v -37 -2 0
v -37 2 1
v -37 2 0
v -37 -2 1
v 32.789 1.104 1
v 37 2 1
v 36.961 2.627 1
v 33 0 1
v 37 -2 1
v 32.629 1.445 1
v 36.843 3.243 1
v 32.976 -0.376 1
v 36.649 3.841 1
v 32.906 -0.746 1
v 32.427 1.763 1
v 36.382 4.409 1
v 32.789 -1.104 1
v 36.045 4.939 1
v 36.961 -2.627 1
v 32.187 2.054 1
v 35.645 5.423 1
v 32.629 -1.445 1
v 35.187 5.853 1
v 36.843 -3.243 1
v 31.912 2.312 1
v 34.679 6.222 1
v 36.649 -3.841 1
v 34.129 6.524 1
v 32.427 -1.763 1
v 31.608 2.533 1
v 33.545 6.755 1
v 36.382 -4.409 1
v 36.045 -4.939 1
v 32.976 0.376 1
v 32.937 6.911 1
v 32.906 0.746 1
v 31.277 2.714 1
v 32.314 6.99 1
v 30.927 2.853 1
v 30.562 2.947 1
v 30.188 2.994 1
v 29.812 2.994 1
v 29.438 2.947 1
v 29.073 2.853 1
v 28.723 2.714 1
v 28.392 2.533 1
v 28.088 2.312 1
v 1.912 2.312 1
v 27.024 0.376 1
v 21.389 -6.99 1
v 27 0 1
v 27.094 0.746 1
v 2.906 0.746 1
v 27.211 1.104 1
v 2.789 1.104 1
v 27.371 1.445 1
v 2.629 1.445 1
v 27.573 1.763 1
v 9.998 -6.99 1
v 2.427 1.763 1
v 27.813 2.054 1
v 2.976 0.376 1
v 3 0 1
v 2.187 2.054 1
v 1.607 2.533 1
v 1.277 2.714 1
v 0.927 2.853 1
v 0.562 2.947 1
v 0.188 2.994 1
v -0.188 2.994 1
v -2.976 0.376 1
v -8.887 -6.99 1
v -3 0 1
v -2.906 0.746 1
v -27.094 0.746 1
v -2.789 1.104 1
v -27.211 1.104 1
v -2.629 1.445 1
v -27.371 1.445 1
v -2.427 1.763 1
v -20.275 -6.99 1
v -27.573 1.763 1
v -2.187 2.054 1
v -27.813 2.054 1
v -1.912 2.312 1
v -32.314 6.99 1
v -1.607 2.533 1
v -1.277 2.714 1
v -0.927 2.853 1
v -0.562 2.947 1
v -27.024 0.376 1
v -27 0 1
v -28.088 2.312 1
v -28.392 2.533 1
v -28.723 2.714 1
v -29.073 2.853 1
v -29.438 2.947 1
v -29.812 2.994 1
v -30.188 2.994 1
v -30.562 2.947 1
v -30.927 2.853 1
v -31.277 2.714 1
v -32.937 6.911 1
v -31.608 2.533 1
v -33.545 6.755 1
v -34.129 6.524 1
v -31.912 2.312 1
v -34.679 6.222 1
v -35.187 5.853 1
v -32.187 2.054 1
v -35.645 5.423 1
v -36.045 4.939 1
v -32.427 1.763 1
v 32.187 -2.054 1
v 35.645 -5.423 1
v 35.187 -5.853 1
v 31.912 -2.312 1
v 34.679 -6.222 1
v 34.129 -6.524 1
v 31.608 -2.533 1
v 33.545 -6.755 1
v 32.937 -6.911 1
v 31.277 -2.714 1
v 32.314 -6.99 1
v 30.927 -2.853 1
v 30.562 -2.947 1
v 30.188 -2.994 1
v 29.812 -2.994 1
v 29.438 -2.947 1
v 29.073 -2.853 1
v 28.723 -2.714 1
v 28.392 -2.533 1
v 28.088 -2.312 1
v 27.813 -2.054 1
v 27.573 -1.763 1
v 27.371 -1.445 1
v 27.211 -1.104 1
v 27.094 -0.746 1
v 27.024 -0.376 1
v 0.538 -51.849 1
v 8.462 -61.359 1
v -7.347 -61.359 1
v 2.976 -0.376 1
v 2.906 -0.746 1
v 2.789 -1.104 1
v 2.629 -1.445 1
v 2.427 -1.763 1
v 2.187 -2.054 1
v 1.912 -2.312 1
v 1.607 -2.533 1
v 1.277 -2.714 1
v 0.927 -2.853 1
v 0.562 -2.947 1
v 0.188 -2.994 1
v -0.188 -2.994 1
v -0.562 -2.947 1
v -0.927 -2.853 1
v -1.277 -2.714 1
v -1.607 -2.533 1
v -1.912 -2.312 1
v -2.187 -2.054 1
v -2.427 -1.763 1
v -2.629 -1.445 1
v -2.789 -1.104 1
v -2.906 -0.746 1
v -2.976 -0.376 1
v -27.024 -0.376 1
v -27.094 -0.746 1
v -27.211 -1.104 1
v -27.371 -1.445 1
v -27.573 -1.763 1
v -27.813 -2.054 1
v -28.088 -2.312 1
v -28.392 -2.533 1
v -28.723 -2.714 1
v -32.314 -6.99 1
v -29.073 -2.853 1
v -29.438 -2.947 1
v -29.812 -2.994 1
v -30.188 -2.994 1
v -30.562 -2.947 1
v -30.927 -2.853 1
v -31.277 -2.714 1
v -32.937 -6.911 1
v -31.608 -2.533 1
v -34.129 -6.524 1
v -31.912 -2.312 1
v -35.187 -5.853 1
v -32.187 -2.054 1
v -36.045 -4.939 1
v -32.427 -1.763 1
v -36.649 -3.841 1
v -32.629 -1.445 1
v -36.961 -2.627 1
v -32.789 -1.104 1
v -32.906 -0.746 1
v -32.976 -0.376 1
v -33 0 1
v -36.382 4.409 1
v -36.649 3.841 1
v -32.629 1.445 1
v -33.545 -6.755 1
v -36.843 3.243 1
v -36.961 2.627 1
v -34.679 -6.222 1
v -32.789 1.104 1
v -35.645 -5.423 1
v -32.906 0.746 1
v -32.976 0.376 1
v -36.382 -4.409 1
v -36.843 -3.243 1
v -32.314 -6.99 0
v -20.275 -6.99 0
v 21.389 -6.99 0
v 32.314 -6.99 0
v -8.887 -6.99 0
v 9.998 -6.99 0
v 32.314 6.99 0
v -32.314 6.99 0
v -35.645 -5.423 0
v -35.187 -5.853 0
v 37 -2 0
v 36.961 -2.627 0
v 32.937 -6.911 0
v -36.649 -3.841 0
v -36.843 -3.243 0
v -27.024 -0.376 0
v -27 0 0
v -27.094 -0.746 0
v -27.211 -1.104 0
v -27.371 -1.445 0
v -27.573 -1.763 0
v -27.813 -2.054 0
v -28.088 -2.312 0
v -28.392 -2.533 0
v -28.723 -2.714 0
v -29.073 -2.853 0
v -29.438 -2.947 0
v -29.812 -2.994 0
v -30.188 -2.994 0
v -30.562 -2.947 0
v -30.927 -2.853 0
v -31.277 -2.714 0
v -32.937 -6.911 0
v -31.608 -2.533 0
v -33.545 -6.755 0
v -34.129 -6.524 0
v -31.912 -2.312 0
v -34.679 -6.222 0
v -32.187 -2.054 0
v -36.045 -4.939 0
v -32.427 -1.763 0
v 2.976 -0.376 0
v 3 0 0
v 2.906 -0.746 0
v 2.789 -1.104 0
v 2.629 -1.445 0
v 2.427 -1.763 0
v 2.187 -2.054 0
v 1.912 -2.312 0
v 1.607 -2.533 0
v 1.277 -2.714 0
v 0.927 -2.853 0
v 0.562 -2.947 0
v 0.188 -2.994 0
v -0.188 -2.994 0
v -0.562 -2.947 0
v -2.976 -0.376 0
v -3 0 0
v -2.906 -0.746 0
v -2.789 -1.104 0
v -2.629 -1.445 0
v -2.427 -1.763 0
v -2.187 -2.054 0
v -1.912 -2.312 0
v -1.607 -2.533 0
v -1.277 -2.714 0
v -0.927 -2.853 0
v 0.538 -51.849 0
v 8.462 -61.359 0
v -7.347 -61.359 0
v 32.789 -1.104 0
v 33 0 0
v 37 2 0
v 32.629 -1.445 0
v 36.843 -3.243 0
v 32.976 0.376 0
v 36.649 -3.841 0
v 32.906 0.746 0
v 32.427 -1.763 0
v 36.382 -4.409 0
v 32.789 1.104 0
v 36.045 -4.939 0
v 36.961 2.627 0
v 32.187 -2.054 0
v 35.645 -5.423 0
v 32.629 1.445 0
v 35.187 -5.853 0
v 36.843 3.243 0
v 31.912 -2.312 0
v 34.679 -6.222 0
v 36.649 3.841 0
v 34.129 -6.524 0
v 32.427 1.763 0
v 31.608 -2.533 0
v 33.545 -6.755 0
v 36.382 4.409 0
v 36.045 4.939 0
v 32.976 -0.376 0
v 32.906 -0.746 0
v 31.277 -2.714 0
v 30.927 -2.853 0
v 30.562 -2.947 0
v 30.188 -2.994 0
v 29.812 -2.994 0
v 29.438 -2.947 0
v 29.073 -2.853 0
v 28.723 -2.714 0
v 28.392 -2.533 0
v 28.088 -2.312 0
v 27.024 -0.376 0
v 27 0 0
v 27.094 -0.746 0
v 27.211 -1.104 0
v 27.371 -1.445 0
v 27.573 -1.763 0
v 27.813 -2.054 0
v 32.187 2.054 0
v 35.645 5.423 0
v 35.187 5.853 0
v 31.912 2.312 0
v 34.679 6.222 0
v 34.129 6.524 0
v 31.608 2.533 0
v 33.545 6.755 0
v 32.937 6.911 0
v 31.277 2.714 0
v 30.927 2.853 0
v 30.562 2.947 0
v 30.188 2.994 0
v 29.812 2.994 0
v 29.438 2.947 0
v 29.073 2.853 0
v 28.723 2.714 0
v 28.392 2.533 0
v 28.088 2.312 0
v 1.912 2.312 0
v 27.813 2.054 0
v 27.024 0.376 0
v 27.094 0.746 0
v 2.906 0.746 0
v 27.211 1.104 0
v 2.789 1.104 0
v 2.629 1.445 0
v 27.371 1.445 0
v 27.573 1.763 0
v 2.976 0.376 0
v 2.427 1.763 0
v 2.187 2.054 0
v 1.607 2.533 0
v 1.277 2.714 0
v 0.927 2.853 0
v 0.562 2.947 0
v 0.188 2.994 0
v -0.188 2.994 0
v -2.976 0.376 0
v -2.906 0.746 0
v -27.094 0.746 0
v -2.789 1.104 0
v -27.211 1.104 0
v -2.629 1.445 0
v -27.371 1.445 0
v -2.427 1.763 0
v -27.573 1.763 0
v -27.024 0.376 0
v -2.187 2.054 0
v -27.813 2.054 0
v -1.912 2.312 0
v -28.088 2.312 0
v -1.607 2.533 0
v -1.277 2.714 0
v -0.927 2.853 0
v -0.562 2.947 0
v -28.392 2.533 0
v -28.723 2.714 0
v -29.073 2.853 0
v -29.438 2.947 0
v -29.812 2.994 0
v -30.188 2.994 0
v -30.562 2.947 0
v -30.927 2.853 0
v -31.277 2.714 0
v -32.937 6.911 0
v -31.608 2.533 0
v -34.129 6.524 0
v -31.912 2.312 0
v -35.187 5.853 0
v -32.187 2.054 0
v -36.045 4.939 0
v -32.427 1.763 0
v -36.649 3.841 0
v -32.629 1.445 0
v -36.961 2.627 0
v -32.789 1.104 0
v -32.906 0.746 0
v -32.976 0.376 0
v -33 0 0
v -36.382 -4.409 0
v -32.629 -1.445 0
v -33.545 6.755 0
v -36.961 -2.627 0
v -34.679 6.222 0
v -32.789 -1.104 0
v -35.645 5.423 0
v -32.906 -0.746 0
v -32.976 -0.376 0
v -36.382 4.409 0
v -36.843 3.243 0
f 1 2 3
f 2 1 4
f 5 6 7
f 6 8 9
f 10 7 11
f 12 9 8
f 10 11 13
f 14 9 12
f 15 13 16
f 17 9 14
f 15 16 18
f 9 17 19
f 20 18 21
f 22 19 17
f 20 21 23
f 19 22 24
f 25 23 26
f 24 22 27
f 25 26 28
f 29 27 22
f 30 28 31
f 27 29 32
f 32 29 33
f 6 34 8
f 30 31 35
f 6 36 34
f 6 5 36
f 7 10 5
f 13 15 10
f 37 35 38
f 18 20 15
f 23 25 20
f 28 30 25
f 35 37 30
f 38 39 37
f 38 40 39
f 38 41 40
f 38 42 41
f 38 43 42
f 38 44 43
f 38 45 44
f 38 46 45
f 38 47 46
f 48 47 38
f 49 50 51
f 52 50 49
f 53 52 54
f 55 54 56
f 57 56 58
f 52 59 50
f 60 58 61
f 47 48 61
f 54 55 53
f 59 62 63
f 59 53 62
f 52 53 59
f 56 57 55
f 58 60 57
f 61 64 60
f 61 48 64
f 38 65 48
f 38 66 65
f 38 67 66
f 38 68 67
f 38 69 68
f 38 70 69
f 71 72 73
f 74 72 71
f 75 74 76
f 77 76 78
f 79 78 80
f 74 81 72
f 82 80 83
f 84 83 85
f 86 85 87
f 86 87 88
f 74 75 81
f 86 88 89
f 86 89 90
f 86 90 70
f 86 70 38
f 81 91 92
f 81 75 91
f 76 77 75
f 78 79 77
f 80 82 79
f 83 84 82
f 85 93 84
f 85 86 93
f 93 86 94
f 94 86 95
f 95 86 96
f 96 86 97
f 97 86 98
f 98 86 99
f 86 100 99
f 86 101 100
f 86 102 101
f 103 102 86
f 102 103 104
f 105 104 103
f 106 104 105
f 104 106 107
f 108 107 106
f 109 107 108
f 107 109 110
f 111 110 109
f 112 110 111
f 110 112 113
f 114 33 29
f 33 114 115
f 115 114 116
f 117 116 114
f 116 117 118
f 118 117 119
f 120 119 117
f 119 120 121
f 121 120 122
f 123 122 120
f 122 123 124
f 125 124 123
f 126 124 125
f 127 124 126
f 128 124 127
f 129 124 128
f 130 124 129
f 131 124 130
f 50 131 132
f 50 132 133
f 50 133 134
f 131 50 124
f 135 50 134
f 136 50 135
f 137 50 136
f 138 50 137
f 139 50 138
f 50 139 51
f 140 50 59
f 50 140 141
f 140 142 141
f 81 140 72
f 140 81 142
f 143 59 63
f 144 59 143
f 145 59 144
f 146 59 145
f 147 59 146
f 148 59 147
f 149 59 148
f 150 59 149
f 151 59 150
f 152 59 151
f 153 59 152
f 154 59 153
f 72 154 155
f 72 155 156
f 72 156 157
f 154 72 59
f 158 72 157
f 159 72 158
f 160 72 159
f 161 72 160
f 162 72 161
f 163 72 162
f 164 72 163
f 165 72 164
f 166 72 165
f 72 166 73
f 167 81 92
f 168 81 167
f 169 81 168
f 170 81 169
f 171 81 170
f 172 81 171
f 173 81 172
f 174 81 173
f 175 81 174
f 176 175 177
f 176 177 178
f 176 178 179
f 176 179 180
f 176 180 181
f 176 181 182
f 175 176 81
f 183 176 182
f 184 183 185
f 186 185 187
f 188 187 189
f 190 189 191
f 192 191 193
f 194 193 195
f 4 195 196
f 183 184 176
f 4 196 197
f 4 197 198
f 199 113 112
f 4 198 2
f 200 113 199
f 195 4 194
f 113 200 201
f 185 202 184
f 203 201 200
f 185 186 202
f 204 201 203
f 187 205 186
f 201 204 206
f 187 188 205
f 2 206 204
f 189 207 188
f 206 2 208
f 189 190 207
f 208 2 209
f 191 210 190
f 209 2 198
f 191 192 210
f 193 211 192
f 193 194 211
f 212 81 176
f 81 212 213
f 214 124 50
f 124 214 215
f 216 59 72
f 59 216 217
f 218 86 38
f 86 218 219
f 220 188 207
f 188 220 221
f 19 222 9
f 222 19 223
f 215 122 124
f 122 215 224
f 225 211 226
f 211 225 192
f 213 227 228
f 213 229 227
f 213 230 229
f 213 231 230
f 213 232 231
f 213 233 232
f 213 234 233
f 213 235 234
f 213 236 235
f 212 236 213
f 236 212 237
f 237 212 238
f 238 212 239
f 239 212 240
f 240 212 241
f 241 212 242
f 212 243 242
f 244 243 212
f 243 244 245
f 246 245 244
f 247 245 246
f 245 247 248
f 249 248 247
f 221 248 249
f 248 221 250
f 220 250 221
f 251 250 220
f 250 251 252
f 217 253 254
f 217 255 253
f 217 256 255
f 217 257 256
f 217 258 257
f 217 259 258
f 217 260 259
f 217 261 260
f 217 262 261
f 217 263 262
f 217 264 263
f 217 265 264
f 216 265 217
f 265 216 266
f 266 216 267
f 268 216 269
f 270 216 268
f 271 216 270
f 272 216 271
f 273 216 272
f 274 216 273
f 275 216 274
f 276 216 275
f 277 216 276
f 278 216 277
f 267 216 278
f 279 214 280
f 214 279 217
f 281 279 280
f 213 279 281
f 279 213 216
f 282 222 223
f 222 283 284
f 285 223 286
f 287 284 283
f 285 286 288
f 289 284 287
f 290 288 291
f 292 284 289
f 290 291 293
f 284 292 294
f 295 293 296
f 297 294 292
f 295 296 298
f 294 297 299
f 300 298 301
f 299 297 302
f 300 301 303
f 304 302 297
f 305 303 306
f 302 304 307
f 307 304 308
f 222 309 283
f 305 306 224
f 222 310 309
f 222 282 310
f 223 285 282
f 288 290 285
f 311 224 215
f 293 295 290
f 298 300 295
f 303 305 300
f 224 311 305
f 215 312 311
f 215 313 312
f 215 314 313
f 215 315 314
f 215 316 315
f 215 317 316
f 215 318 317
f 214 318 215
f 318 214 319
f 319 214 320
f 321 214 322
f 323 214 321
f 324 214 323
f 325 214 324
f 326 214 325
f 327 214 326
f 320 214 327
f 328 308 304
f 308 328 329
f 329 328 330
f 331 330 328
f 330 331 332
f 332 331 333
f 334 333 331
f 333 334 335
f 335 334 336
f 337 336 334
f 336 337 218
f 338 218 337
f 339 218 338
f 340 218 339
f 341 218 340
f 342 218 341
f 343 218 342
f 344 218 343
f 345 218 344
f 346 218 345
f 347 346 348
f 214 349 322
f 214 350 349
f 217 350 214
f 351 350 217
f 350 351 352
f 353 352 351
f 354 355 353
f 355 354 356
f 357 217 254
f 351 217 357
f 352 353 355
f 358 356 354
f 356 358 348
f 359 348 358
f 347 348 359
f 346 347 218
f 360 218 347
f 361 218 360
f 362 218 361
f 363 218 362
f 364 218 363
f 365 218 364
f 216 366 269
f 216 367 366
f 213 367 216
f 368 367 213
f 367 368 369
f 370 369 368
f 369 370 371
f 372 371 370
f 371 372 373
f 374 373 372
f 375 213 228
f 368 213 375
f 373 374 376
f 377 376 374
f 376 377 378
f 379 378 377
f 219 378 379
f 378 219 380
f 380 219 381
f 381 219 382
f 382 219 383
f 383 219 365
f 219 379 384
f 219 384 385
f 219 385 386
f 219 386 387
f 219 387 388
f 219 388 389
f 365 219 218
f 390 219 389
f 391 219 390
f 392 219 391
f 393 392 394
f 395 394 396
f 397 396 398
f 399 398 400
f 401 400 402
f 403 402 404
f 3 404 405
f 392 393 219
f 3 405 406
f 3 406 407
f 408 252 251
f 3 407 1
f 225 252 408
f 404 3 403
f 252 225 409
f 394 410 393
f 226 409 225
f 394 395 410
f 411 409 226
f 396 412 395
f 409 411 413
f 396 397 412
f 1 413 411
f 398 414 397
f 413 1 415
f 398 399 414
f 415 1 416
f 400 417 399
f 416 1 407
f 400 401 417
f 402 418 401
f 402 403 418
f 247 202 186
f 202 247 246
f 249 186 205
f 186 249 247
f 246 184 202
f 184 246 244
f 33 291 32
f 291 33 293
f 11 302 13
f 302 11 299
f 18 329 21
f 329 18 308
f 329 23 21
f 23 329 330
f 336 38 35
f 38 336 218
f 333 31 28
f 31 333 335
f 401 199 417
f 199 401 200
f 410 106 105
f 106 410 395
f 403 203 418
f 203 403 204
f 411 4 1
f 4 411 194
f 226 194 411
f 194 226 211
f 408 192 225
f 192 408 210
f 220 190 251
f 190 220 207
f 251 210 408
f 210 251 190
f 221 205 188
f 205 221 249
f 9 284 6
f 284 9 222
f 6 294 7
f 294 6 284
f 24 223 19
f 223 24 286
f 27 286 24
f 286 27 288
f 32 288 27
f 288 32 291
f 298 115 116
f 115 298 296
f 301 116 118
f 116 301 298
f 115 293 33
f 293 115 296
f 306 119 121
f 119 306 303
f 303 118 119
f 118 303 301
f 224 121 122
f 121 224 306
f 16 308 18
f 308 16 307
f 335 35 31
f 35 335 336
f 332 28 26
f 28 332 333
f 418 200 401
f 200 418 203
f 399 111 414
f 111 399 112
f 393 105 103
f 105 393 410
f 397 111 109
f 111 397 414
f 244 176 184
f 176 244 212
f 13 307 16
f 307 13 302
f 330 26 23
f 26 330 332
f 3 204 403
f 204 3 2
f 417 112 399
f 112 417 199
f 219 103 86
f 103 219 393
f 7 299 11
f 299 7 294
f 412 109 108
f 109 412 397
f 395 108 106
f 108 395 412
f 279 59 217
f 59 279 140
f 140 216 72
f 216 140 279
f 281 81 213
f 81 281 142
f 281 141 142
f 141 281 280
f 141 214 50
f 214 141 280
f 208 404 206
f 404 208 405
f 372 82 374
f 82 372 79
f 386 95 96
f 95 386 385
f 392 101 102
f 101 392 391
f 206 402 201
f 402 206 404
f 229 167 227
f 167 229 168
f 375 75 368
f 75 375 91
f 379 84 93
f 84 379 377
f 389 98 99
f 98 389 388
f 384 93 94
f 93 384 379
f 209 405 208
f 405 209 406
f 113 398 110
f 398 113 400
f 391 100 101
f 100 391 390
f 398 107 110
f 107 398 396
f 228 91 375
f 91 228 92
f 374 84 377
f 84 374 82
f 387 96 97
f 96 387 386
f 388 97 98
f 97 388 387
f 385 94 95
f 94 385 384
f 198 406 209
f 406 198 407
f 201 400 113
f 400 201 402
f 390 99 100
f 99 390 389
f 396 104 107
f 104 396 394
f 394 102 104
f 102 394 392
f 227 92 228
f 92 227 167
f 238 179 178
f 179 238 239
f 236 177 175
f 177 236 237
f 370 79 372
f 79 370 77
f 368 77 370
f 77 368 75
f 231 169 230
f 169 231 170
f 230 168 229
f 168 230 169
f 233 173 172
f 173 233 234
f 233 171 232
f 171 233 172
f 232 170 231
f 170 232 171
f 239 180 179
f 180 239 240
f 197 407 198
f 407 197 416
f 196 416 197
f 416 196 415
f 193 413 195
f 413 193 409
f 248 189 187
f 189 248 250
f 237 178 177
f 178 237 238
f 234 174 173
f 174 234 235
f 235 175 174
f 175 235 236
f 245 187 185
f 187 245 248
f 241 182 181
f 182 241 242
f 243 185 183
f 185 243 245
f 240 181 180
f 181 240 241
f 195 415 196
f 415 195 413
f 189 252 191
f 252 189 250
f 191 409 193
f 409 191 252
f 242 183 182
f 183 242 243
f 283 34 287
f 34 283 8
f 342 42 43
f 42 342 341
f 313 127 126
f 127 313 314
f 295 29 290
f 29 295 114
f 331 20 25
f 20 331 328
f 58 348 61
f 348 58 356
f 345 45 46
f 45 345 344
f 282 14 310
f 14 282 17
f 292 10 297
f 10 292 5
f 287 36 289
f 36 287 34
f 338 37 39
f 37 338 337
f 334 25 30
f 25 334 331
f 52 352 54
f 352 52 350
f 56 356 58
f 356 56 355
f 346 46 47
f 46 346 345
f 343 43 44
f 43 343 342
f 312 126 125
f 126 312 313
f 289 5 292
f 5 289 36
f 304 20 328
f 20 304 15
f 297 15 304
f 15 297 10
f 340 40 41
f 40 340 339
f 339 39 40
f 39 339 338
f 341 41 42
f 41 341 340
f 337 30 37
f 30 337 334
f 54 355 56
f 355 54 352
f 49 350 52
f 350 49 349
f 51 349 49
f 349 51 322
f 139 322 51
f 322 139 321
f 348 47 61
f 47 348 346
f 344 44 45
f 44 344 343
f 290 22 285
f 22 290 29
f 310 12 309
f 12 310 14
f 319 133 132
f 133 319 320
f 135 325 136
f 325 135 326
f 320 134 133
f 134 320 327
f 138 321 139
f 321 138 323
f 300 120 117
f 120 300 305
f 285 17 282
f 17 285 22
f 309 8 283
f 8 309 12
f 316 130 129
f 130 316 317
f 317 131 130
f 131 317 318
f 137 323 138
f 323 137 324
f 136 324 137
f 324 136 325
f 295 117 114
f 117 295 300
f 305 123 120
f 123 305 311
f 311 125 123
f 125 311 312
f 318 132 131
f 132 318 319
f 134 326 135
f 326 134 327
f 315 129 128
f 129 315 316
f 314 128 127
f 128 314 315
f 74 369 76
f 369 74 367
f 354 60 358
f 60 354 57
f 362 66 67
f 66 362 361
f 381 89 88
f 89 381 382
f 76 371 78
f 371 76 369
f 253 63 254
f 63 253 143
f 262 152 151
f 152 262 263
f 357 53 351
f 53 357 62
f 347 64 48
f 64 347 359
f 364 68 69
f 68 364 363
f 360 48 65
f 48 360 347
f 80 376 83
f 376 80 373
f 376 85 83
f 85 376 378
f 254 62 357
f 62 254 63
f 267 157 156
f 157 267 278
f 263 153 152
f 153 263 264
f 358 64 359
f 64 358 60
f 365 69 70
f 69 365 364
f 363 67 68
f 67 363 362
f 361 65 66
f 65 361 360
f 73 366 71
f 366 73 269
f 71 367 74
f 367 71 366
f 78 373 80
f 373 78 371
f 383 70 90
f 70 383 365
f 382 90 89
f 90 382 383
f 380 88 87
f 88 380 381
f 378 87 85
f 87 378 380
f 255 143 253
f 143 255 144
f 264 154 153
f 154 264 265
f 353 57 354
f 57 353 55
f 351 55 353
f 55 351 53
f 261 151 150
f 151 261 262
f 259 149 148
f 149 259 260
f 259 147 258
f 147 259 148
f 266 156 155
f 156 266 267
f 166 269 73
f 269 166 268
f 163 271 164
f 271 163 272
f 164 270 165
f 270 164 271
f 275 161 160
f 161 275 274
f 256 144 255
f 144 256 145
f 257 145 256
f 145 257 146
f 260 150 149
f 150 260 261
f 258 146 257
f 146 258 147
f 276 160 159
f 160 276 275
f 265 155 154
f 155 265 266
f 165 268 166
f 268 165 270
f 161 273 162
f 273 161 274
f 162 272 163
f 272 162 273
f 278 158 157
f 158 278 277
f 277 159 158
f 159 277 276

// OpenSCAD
$fn = 50;


difference() {
	union() {
		translate(v = [0, 0, 0]) {
			rotate(a = [0, 0, 0]) {
				hull() {
					translate(v = [-32.0000000000, 2.0000000000, 0]) {
						rotate(a = [0, 0, 0]) {
							translate(v = [0, 0, 0]) {
								rotate(a = [0, 0, 0]) {
									cylinder(h = 1, r = 5);
								}
							}
						}
					}
					translate(v = [32.0000000000, 2.0000000000, 0]) {
						rotate(a = [0, 0, 0]) {
							translate(v = [0, 0, 0]) {
								rotate(a = [0, 0, 0]) {
									cylinder(h = 1, r = 5);
								}
							}
						}
					}
					translate(v = [-32.0000000000, -2.0000000000, 0]) {
						rotate(a = [0, 0, 0]) {
							translate(v = [0, 0, 0]) {
								rotate(a = [0, 0, 0]) {
									cylinder(h = 1, r = 5);
								}
							}
						}
					}
					translate(v = [32.0000000000, -2.0000000000, 0]) {
						rotate(a = [0, 0, 0]) {
							translate(v = [0, 0, 0]) {
								rotate(a = [0, 0, 0]) {
									cylinder(h = 1, r = 5);
								}
							}
						}
					}
				}
			}
		}
		translate(v = [0, -5, 0]) {
			rotate(a = [0, 0, 0]) {
				linear_extrude(height = 1) {
					text(font = "DejaVu Sans Mono:style=Bold", halign = "center", size = 57.0000000000, text = "V", valign = "top");
				}
			}
		}
	}
	union() {
		translate(v = [-30.0000000000, 0.0000000000, -125.0000000000]) {
			rotate(a = [0, 0, 0]) {
				cylinder(h = 250, r = 3.0000000000);
			}
		}
		translate(v = [30.0000000000, 0.0000000000, -125.0000000000]) {
			rotate(a = [0, 0, 0]) {
				cylinder(h = 250, r = 3.0000000000);
			}
		}
		translate(v = [30.0000000000, 0.0000000000, -125.0000000000]) {
			rotate(a = [0, 0, 0]) {
				cylinder(h = 250, r = 3.0000000000);
			}
		}
		translate(v = [0, 0, -125.0000000000]) {
			rotate(a = [0, 0, 0]) {
				cylinder(h = 250, r = 3.0000000000);
			}
		}
	}
}
